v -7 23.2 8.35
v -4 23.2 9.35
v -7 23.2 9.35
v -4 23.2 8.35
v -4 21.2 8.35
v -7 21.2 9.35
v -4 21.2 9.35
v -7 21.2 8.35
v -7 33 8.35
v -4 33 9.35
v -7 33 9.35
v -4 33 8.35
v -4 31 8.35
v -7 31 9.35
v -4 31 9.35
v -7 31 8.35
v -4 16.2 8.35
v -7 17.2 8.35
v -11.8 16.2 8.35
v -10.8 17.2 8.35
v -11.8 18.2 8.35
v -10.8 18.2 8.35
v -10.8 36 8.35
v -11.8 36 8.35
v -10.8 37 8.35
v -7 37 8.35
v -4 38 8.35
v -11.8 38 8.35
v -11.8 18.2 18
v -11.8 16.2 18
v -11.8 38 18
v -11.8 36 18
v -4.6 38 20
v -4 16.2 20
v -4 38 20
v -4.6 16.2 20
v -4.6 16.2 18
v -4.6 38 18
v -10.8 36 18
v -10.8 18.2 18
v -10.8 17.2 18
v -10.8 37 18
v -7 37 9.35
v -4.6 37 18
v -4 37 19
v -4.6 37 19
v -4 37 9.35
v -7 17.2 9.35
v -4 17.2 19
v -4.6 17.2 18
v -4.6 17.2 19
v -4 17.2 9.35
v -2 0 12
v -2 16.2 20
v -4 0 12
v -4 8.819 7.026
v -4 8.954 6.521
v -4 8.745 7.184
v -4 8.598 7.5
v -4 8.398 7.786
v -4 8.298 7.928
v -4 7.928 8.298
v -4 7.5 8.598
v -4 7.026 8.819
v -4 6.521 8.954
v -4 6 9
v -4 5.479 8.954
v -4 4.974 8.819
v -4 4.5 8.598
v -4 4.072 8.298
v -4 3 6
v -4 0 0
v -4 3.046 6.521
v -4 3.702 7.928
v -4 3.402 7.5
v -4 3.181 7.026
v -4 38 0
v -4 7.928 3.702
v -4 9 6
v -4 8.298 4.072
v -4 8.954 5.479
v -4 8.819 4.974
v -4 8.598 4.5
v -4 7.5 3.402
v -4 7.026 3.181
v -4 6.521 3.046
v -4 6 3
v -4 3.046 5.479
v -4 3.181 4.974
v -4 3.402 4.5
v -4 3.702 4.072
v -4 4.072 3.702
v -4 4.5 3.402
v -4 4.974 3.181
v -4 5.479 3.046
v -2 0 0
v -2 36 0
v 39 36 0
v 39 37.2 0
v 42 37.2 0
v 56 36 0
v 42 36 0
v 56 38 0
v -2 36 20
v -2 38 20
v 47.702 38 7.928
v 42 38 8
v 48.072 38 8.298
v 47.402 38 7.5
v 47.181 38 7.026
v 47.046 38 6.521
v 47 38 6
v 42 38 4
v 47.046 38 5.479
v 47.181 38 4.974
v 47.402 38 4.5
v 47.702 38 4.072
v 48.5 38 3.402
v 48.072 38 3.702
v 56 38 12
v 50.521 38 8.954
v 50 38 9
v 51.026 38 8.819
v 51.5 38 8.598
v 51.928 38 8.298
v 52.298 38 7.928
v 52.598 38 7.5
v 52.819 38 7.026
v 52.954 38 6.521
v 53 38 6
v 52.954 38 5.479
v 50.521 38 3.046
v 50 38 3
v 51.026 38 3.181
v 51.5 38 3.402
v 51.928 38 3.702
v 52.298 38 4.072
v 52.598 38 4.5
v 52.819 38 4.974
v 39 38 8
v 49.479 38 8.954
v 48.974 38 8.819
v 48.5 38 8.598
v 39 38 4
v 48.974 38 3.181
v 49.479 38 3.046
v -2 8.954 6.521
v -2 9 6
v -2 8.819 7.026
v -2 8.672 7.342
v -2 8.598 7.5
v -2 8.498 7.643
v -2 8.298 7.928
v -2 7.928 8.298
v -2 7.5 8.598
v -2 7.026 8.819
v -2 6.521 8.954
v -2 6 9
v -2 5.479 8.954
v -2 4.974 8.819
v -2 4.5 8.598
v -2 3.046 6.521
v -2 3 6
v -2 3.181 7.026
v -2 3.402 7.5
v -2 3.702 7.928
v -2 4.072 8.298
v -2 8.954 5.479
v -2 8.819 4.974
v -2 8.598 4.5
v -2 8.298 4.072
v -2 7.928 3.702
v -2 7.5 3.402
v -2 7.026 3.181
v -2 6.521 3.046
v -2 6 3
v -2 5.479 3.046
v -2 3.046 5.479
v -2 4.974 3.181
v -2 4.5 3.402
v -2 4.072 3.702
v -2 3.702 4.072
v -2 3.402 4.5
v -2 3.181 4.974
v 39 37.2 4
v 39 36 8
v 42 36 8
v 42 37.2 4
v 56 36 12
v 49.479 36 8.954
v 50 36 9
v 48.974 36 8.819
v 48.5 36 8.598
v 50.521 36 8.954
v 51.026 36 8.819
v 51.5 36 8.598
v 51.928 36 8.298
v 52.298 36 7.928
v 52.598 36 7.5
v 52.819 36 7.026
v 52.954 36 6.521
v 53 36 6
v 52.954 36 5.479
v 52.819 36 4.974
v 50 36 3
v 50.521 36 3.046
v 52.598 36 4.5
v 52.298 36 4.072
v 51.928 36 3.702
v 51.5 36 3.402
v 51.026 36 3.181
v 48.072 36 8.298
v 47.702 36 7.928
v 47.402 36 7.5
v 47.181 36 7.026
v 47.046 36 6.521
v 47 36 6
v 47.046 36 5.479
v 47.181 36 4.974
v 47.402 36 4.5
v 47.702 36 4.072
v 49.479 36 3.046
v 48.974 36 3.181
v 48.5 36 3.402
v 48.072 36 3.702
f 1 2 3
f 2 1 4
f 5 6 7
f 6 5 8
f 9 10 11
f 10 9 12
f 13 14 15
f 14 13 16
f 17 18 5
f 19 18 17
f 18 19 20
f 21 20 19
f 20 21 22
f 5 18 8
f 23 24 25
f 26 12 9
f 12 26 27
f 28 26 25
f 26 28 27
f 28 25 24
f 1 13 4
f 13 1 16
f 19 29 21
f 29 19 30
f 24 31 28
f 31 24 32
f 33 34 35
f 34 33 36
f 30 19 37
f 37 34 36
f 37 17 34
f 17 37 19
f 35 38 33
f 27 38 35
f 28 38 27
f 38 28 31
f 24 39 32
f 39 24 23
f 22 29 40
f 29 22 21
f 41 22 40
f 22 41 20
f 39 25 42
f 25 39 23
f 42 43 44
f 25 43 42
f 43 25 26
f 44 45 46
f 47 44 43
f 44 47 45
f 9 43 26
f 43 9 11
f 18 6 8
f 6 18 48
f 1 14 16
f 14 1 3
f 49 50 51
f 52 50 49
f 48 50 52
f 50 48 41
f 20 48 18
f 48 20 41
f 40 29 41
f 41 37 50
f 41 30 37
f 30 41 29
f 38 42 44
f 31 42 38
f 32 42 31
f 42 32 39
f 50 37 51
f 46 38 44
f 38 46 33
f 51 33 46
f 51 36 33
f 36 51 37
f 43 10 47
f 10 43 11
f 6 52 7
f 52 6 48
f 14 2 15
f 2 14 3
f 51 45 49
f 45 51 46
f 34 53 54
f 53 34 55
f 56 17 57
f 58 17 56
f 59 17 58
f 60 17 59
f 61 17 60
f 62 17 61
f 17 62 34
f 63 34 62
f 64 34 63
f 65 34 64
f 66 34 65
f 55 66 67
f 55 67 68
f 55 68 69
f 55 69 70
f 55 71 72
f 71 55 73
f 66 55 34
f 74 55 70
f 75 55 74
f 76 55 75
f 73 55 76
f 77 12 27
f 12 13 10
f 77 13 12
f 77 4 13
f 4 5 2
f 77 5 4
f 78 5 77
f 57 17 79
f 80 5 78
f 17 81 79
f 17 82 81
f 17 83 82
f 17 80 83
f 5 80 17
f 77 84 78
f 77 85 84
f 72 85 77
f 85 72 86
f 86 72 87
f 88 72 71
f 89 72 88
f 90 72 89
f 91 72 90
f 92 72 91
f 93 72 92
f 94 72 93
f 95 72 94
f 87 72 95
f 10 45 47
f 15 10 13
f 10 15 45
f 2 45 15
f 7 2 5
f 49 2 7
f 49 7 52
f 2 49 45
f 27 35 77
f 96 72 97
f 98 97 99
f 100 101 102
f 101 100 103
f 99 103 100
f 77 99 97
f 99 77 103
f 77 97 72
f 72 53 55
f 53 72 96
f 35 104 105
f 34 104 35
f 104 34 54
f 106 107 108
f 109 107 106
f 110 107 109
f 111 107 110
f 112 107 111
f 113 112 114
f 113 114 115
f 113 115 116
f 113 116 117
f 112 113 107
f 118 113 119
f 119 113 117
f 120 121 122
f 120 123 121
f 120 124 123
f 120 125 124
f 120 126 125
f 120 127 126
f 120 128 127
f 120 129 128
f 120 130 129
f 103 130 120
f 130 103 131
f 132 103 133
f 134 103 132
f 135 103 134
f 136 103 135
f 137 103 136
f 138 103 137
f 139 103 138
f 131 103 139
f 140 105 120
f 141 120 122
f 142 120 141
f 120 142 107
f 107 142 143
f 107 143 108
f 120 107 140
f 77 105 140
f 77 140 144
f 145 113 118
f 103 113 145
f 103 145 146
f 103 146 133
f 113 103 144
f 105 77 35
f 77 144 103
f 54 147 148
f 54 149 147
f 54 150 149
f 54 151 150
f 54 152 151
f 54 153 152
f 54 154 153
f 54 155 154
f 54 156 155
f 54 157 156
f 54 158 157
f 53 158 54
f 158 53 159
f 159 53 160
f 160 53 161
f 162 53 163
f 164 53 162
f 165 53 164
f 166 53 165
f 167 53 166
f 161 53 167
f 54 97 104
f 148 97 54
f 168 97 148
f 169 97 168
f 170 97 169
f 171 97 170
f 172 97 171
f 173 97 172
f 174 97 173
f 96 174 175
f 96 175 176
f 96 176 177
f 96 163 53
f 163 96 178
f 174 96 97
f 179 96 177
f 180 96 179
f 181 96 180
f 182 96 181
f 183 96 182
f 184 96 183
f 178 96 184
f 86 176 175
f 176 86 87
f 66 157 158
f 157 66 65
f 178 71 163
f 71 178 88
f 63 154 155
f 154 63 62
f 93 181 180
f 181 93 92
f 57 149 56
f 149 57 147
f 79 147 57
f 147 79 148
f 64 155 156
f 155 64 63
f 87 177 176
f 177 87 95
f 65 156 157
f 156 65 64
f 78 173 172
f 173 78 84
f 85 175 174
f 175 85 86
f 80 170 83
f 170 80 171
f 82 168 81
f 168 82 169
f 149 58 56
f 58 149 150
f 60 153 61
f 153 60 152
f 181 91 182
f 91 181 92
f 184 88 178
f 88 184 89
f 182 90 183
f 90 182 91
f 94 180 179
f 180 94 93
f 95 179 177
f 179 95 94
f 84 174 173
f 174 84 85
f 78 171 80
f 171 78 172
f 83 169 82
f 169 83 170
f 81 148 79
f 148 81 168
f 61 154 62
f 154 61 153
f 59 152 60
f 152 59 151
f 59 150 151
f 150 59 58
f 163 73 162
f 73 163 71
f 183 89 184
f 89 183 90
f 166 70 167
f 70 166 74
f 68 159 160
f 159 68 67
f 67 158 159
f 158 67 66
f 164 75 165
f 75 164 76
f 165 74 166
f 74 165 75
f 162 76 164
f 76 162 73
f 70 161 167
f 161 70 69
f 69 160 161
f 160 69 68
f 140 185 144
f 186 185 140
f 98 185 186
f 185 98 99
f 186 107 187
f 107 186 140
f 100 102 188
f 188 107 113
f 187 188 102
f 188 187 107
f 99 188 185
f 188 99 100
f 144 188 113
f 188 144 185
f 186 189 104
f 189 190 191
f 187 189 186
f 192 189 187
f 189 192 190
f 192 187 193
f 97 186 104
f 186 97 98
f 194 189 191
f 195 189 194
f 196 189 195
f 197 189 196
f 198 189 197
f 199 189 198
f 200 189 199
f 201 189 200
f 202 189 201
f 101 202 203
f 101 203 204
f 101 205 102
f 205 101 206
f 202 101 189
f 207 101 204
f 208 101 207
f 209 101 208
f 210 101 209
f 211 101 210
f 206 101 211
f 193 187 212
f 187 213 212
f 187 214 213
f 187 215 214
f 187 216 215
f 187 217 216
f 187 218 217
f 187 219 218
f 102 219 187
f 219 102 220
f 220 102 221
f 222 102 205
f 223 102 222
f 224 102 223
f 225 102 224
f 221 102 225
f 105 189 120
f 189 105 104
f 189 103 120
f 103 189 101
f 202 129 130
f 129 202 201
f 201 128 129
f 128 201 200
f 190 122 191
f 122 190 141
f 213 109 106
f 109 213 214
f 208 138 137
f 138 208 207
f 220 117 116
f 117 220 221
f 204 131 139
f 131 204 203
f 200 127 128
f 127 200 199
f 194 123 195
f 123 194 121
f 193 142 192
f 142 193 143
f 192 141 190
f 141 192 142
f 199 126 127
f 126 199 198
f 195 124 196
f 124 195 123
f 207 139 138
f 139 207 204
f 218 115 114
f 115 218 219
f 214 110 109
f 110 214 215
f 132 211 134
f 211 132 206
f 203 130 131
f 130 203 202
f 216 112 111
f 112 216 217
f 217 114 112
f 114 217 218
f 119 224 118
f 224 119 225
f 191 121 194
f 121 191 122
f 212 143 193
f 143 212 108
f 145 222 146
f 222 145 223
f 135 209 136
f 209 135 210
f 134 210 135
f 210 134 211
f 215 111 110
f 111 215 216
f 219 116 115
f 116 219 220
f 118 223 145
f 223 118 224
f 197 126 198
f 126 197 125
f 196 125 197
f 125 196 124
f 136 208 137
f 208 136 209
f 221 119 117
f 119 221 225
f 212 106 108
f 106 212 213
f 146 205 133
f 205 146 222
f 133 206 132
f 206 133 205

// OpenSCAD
// file: parts/endstop_holder.scad
module holder(switch_x, switch_y, switch_z) {

  difference() {
    cube([switch_x + 2, switch_y + 2, switch_z + 2], false);

    // cut top
    translate([-1, 2, switch_z])
      cube([switch_x + 2, switch_y - 2, 3], false);

    // cut lower back edge
    translate([-1, 1, 4])
      cube([3, switch_y, switch_z - 3], false);

    // cut lower front edge
    translate([switch_x, -1, 1.6])
      cube([switch_x, switch_y + 4, switch_z + 4], false);

    // cut jags
    for (y = [5, switch_y - 5])
      translate([-1, y, 1])
        cube([3, 2, 10], false);

    // cut switch
    translate([1, 1, 1])
      cube([switch_x, switch_y, switch_z], false);
  }

}

holder(9.65, 19.8, 6.8);
// main file
use <parts/endstop_holder.scad>;

switch_x = 9.65;
switch_y = 19.8;
switch_z = 6.8;

bracket_height = 12;
holder_overhang = 20 - switch_x - 2;

hole_diameter = 6;
hole_padding = hole_diameter + (bracket_height - hole_diameter) / 2;

hole_y_spacing = 27;
hole_z_spacing = 49;

color("green", 0.5)
translate([-3, hole_y_spacing - switch_y + hole_padding, holder_overhang])
rotate([0, -90, 0])
  holder(switch_x, switch_y, switch_z);

color("blue", 0.5)
translate([-4, hole_y_spacing + hole_padding, 0])
difference() {
  hull() {
    cube([2, 2, holder_overhang + switch_x + 2], false);
    cube([hole_z_spacing + hole_padding + 2, 2, bracket_height], false);
  }

  // lower screw hole
  translate([hole_z_spacing + 2, 4, bracket_height / 2 - hole_diameter / 2])
  rotate([90, 0, 0])
  translate([3, 3, 0])
    cylinder(6, d=hole_diameter, $fn = 36);

  // cable stripe
  translate([hole_z_spacing - 6, -1, -2])
  union() {
    cube([3, 2.2, 10], false);
    translate([0, 1, 6])
      cube([3, 4, 4], false);
  }
}

color("purple", 0.5)
difference() {
  hull() {
    translate([-4, 0, 0])
      cube([2, hole_y_spacing + 2 + hole_padding, bracket_height], false);

    translate([-4, hole_y_spacing - switch_y + hole_padding, holder_overhang + switch_x])
      cube([2, switch_y + 2, 2], false);
  }

  translate([-6, (bracket_height - hole_diameter) / 2, bracket_height / 2 + hole_diameter / 2])
  rotate([0, 90, 0])
  translate([3, 3, 0])
    cylinder(6, d=hole_diameter, $fn = 36);
}

// hole_y_spacing
%translate([-2, hole_padding, 0])
  cube([2, hole_y_spacing, 2], false);

// hole_z_spacing
%translate([-2, hole_y_spacing + hole_padding - 2, 0])
  cube([hole_z_spacing, 2, 2], false);

// holder_overhang
%translate([0, hole_y_spacing + hole_padding - 4, 0])
  cube([2, 2, holder_overhang], false);
